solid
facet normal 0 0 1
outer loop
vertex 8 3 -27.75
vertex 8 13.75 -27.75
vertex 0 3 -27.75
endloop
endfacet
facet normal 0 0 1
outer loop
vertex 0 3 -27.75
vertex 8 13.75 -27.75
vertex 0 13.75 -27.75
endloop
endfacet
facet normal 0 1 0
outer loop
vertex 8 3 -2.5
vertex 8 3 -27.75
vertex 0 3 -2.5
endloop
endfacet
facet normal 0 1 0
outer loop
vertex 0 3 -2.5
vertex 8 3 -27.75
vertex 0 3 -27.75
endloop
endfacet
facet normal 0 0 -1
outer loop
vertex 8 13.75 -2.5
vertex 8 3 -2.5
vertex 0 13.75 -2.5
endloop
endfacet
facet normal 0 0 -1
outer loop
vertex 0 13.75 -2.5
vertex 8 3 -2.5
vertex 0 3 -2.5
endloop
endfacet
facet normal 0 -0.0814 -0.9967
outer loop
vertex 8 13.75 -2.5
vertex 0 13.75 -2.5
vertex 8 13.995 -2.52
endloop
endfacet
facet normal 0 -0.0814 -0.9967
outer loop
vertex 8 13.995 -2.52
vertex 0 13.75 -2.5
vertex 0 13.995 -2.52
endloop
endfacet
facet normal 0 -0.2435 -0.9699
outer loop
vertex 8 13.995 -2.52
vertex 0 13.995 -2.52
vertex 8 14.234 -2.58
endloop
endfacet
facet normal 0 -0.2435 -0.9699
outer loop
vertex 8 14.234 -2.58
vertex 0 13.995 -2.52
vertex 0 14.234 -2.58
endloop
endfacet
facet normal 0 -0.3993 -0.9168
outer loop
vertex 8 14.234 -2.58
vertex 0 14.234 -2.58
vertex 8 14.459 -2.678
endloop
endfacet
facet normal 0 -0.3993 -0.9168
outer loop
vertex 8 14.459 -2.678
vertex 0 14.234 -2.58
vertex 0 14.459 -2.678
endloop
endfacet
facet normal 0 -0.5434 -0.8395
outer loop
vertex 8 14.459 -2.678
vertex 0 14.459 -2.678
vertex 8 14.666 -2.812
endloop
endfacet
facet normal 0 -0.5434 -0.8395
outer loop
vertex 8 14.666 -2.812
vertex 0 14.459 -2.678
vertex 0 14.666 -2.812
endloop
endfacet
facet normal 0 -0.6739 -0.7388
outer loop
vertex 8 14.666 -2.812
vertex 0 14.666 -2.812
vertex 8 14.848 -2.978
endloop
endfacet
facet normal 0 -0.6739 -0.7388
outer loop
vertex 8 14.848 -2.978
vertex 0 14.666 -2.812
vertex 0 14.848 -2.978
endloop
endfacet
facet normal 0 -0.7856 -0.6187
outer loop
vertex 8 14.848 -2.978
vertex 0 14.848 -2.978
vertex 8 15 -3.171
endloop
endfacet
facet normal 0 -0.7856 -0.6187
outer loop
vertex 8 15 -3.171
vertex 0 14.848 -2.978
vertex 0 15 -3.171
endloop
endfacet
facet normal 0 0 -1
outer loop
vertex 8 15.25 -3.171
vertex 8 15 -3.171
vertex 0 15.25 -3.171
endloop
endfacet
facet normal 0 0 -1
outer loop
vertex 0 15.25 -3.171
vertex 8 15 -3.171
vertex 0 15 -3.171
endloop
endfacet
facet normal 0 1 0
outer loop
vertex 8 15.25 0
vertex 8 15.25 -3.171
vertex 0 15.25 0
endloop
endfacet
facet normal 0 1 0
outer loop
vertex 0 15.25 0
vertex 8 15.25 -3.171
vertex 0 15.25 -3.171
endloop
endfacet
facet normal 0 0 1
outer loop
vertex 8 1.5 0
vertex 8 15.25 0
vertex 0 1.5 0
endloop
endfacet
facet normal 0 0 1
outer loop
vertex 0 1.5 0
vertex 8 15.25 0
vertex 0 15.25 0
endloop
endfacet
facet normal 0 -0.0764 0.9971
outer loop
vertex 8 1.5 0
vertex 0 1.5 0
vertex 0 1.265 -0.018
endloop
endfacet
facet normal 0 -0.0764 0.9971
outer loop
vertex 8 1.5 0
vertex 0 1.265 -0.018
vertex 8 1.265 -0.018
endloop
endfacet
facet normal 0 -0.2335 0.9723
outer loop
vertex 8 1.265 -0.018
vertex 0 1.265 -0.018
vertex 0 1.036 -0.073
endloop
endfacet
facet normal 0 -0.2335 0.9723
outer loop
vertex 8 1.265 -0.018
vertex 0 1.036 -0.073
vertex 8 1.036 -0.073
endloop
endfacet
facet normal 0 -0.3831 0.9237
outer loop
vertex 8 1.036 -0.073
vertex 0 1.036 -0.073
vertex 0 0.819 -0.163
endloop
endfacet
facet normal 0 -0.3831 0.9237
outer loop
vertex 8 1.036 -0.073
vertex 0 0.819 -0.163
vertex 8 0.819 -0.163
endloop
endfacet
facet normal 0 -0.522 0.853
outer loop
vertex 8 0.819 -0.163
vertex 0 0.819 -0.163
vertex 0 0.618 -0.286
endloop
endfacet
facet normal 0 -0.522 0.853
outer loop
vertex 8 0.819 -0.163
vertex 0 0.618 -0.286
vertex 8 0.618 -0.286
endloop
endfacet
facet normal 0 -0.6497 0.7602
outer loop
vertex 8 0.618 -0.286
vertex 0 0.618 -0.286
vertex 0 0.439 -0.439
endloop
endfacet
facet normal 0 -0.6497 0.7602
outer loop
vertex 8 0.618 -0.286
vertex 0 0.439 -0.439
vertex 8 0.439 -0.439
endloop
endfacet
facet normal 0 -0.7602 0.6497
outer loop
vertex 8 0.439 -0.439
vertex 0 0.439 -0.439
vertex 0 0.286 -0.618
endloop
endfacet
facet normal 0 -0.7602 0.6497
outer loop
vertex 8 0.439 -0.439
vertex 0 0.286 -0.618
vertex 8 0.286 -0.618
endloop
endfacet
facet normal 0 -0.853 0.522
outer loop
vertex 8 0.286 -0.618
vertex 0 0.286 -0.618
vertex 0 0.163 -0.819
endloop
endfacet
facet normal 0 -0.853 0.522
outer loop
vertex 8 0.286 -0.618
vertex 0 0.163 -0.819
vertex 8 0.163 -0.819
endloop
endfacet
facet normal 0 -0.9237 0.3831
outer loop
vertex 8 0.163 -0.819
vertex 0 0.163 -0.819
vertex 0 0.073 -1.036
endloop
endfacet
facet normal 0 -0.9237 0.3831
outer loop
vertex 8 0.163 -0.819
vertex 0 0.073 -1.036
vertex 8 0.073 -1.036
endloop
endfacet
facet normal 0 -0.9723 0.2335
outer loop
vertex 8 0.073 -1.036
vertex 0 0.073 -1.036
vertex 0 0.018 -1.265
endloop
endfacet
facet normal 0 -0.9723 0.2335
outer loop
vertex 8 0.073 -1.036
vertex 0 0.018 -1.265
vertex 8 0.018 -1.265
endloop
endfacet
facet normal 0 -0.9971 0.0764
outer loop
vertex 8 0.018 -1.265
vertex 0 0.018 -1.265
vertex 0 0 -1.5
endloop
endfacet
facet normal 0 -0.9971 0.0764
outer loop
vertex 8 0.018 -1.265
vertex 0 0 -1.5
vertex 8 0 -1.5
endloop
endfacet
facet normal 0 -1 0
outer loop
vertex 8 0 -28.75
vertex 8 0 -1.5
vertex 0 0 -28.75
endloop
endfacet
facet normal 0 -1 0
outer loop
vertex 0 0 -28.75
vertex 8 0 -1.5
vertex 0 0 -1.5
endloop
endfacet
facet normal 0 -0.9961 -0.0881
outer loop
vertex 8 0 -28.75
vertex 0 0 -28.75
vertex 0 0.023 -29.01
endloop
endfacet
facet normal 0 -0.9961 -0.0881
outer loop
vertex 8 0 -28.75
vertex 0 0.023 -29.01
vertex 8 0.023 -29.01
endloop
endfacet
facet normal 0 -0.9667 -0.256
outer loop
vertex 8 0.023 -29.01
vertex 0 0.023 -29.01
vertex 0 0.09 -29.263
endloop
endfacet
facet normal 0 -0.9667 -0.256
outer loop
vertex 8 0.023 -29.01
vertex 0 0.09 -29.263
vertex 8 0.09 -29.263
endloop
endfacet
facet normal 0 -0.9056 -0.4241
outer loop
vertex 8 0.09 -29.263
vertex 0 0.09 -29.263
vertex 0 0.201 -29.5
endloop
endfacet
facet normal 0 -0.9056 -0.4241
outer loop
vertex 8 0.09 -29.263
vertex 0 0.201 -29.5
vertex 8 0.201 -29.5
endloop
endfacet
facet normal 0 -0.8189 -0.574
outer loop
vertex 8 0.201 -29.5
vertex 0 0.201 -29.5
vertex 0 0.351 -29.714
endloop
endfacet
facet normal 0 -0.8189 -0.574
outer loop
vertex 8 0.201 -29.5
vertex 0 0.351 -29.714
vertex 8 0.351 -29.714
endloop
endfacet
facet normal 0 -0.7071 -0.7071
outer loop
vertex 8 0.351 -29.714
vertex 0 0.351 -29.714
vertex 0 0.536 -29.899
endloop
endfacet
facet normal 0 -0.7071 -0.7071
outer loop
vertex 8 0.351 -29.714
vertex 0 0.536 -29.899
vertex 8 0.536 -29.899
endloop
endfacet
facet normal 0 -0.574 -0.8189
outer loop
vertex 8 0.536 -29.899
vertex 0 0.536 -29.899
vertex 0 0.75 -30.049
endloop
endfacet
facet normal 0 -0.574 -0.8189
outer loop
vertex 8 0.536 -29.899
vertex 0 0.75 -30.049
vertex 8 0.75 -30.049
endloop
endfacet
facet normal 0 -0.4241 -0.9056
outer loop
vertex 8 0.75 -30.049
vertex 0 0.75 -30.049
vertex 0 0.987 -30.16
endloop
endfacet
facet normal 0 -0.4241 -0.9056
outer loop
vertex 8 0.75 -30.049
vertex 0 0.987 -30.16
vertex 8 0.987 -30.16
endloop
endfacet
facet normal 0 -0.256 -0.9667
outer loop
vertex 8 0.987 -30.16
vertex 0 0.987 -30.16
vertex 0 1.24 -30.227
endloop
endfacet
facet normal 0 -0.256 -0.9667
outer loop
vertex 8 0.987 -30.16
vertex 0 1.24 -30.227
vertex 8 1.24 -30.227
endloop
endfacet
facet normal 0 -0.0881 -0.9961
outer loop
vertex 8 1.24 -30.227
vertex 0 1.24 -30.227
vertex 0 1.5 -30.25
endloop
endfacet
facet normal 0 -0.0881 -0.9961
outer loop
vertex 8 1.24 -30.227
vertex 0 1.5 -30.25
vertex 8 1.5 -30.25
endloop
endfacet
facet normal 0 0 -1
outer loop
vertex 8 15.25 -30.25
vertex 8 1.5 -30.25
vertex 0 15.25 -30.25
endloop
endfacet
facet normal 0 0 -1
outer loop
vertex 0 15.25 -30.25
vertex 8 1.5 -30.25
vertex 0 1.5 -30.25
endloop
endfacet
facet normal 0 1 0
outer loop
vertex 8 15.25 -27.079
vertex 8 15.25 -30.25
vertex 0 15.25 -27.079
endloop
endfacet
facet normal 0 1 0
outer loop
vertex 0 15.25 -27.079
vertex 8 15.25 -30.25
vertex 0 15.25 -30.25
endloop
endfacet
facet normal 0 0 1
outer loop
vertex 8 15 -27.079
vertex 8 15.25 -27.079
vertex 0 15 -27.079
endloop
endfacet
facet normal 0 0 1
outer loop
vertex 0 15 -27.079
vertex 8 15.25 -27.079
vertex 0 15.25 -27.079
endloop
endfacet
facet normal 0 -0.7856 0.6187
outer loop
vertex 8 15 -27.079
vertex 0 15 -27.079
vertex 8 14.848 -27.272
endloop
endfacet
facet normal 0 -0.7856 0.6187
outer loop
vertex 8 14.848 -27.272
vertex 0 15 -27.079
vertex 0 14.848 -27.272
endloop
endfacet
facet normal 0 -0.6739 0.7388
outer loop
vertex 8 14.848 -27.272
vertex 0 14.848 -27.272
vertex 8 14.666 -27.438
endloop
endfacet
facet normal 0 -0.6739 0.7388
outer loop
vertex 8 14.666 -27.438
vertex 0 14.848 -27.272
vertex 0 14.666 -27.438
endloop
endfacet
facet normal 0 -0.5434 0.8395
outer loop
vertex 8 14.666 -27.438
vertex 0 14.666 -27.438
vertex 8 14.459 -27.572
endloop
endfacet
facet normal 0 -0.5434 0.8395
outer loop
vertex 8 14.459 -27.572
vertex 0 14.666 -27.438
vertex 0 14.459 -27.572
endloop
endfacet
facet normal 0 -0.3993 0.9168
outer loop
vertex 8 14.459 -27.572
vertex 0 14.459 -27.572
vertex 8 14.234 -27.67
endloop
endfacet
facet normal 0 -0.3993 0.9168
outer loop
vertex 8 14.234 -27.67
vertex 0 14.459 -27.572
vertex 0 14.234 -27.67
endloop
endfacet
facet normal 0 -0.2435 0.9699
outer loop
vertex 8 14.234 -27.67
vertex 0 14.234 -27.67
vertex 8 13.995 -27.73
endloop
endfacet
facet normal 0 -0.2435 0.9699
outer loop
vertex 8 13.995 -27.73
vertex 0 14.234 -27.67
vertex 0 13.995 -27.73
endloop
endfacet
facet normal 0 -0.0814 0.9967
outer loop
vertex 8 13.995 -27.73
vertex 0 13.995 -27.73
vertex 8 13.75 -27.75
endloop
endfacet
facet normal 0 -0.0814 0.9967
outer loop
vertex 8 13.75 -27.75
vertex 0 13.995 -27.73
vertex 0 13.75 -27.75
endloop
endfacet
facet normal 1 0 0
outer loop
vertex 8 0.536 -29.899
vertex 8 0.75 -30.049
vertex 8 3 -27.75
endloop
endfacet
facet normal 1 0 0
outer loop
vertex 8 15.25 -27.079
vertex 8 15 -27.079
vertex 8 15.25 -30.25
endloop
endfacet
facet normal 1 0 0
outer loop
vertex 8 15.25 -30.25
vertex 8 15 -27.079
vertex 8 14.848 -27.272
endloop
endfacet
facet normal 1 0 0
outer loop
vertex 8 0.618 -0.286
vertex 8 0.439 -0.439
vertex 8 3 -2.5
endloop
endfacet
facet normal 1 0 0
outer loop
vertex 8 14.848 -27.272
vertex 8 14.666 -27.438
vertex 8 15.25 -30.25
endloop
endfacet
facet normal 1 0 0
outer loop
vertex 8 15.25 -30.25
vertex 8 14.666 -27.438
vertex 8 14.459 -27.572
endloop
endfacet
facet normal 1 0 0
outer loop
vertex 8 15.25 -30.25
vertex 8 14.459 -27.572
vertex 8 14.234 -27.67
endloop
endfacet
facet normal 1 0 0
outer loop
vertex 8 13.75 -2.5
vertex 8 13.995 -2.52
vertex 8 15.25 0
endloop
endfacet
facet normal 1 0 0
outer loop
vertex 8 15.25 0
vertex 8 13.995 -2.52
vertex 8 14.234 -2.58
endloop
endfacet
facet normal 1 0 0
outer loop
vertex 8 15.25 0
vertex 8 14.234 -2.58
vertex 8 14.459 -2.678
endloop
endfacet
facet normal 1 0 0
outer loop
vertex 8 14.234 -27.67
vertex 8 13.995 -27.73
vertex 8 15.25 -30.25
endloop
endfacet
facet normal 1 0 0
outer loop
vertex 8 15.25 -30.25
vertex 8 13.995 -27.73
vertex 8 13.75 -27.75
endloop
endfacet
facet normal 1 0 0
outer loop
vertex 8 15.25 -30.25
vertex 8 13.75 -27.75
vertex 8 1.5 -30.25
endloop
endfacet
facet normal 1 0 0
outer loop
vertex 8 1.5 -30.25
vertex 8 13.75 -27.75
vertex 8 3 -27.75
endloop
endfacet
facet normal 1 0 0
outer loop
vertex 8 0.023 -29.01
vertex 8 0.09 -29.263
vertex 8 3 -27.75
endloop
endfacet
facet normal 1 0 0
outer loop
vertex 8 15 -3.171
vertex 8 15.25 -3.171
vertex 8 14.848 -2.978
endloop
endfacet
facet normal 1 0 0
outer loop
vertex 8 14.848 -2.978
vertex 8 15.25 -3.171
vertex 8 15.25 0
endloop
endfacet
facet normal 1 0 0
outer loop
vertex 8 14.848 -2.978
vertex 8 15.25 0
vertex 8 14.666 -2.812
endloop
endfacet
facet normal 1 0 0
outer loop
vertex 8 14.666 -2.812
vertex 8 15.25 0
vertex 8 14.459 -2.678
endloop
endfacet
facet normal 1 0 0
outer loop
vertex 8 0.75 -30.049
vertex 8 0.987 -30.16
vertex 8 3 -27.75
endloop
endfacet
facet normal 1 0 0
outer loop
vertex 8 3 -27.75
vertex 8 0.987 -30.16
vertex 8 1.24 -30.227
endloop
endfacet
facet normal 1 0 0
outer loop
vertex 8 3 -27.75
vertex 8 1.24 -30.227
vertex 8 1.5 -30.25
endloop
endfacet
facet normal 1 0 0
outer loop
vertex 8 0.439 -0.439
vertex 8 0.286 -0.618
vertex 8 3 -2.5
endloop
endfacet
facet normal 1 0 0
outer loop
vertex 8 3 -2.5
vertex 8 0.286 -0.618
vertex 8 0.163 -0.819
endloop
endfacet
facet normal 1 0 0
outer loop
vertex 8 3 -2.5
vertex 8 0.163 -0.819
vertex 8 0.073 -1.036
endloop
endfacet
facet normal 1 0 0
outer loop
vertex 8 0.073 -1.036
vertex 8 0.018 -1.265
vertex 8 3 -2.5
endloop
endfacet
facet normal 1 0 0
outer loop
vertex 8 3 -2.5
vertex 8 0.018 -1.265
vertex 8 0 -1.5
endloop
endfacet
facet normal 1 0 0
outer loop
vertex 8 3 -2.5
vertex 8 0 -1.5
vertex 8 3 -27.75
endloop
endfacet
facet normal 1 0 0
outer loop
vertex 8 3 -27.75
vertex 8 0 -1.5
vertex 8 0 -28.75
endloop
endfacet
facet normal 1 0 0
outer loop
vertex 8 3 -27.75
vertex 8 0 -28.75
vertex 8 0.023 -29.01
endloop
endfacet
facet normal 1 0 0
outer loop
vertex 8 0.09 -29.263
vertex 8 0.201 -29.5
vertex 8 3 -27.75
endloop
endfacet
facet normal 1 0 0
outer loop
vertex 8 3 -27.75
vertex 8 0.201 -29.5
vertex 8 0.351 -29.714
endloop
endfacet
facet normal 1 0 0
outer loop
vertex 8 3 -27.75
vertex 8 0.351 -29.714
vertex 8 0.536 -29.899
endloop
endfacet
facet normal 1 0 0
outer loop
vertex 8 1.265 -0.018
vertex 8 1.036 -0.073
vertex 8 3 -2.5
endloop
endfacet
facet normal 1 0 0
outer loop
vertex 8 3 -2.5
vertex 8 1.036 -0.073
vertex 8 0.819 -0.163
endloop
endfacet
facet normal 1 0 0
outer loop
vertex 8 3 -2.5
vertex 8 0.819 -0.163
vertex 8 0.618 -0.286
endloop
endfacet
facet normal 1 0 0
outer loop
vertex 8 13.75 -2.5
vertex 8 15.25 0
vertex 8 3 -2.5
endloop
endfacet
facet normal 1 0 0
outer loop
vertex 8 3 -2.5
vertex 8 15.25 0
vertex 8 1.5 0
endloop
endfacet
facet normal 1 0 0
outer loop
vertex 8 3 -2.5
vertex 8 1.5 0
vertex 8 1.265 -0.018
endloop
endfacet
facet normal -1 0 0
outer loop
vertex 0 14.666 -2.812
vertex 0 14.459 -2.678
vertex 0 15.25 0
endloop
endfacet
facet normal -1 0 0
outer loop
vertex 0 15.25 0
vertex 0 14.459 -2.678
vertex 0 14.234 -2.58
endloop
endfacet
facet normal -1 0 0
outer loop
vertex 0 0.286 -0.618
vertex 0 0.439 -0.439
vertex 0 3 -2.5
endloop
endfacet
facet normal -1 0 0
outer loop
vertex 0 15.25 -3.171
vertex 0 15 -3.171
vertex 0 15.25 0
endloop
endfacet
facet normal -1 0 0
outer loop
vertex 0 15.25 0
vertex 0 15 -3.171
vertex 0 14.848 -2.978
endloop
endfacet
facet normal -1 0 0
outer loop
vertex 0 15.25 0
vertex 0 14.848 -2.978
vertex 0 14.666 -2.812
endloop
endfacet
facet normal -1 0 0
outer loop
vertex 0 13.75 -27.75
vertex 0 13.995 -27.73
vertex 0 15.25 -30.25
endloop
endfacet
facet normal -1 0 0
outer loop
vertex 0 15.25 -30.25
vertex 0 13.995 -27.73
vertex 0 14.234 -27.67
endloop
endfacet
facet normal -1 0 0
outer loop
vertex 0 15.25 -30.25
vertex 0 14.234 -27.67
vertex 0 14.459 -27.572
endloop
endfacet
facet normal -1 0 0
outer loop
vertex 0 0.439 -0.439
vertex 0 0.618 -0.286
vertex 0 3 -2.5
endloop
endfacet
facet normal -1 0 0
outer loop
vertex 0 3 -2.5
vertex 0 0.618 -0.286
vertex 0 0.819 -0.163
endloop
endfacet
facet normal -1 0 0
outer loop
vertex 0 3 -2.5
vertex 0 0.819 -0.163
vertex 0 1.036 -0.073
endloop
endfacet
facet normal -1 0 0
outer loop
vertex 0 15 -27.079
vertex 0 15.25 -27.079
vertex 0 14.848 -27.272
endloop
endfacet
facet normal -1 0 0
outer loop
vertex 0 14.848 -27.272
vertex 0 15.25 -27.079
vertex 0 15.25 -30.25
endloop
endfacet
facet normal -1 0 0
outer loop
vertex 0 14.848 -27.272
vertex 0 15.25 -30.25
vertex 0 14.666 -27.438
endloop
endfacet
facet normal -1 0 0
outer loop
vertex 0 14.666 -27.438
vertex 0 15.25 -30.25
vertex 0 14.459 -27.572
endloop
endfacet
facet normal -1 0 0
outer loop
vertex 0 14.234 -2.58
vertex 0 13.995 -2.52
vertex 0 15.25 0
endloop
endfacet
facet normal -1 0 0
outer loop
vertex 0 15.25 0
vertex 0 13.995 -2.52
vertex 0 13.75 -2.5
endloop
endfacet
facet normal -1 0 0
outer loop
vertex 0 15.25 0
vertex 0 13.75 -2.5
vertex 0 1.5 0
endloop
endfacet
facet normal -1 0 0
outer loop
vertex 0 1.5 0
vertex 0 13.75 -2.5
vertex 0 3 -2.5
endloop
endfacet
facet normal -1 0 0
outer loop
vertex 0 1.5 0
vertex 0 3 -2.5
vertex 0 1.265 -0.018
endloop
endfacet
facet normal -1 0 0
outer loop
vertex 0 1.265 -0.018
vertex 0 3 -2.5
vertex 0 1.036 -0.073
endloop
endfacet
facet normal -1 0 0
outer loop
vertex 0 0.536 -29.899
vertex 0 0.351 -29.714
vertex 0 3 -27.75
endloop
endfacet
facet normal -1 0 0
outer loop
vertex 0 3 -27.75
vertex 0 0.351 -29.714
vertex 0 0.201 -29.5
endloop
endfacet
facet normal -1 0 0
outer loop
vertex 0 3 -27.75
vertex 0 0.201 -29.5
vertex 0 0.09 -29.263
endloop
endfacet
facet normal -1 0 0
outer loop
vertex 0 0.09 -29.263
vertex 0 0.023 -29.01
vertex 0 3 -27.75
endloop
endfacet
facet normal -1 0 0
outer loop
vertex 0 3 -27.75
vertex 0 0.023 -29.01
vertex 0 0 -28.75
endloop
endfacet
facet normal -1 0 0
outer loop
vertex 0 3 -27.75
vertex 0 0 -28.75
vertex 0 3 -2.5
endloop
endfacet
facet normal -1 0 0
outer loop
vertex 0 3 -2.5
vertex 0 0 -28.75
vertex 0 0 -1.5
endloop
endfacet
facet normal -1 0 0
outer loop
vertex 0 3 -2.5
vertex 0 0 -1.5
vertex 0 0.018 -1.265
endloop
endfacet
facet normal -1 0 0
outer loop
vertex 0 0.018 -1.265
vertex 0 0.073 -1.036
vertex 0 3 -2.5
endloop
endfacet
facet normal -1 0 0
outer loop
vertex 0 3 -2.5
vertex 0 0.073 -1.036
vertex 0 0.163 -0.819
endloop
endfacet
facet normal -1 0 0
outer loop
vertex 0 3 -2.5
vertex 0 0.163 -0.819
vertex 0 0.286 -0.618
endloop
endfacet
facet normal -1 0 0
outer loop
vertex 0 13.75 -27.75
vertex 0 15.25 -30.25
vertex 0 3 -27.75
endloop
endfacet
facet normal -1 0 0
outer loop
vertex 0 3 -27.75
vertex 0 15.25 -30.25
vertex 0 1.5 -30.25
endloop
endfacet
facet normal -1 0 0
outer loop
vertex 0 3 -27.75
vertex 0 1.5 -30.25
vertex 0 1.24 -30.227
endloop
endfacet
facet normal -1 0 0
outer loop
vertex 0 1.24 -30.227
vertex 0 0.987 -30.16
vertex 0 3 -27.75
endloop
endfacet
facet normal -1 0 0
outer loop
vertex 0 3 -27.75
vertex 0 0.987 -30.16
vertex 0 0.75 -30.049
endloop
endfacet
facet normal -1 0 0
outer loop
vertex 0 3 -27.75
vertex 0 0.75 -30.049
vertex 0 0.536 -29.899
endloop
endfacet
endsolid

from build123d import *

# Parameters (mm, degrees)
PROFILEBOSS_EXTRUDE1_DEPTH = 8


with BuildPart() as part:
    # Sketch2 → ProfileBoss-Extrude1 (new body)
    with BuildSketch(Plane(origin=(0, 0, 0), x_dir=(0, 0, -1), z_dir=(1, 0, 0))):
        with BuildLine():
            Line((1.5, 0), (28.75, 0))
            ThreePointArc((28.75, 0), (29.810660172, 0.439339828), (30.25, 1.5))
            Line((30.25, 1.5), (30.25, 15.25))
            Line((30.25, 15.25), (27.079156198, 15.25))
            Line((27.079156198, 15.25), (27.079156198, 15))
            ThreePointArc((27.079156198, 15), (27.571691018, 14.459318583), (27.75, 13.75))
            Line((27.75, 13.75), (27.75, 3))
            Line((27.75, 3), (2.5, 3))
            Line((2.5, 3), (2.5, 13.75))
            ThreePointArc((2.5, 13.75), (2.678308982, 14.459318583), (3.170843802, 15))
            Line((3.170843802, 15), (3.170843802, 15.25))
            Line((3.170843802, 15.25), (0, 15.25))
            Line((0, 15.25), (0, 1.5))
            ThreePointArc((0, 1.5), (0.439339828, 0.439339828), (1.5, 0))
        make_face()
    extrude(amount=PROFILEBOSS_EXTRUDE1_DEPTH)


solid = part.part
